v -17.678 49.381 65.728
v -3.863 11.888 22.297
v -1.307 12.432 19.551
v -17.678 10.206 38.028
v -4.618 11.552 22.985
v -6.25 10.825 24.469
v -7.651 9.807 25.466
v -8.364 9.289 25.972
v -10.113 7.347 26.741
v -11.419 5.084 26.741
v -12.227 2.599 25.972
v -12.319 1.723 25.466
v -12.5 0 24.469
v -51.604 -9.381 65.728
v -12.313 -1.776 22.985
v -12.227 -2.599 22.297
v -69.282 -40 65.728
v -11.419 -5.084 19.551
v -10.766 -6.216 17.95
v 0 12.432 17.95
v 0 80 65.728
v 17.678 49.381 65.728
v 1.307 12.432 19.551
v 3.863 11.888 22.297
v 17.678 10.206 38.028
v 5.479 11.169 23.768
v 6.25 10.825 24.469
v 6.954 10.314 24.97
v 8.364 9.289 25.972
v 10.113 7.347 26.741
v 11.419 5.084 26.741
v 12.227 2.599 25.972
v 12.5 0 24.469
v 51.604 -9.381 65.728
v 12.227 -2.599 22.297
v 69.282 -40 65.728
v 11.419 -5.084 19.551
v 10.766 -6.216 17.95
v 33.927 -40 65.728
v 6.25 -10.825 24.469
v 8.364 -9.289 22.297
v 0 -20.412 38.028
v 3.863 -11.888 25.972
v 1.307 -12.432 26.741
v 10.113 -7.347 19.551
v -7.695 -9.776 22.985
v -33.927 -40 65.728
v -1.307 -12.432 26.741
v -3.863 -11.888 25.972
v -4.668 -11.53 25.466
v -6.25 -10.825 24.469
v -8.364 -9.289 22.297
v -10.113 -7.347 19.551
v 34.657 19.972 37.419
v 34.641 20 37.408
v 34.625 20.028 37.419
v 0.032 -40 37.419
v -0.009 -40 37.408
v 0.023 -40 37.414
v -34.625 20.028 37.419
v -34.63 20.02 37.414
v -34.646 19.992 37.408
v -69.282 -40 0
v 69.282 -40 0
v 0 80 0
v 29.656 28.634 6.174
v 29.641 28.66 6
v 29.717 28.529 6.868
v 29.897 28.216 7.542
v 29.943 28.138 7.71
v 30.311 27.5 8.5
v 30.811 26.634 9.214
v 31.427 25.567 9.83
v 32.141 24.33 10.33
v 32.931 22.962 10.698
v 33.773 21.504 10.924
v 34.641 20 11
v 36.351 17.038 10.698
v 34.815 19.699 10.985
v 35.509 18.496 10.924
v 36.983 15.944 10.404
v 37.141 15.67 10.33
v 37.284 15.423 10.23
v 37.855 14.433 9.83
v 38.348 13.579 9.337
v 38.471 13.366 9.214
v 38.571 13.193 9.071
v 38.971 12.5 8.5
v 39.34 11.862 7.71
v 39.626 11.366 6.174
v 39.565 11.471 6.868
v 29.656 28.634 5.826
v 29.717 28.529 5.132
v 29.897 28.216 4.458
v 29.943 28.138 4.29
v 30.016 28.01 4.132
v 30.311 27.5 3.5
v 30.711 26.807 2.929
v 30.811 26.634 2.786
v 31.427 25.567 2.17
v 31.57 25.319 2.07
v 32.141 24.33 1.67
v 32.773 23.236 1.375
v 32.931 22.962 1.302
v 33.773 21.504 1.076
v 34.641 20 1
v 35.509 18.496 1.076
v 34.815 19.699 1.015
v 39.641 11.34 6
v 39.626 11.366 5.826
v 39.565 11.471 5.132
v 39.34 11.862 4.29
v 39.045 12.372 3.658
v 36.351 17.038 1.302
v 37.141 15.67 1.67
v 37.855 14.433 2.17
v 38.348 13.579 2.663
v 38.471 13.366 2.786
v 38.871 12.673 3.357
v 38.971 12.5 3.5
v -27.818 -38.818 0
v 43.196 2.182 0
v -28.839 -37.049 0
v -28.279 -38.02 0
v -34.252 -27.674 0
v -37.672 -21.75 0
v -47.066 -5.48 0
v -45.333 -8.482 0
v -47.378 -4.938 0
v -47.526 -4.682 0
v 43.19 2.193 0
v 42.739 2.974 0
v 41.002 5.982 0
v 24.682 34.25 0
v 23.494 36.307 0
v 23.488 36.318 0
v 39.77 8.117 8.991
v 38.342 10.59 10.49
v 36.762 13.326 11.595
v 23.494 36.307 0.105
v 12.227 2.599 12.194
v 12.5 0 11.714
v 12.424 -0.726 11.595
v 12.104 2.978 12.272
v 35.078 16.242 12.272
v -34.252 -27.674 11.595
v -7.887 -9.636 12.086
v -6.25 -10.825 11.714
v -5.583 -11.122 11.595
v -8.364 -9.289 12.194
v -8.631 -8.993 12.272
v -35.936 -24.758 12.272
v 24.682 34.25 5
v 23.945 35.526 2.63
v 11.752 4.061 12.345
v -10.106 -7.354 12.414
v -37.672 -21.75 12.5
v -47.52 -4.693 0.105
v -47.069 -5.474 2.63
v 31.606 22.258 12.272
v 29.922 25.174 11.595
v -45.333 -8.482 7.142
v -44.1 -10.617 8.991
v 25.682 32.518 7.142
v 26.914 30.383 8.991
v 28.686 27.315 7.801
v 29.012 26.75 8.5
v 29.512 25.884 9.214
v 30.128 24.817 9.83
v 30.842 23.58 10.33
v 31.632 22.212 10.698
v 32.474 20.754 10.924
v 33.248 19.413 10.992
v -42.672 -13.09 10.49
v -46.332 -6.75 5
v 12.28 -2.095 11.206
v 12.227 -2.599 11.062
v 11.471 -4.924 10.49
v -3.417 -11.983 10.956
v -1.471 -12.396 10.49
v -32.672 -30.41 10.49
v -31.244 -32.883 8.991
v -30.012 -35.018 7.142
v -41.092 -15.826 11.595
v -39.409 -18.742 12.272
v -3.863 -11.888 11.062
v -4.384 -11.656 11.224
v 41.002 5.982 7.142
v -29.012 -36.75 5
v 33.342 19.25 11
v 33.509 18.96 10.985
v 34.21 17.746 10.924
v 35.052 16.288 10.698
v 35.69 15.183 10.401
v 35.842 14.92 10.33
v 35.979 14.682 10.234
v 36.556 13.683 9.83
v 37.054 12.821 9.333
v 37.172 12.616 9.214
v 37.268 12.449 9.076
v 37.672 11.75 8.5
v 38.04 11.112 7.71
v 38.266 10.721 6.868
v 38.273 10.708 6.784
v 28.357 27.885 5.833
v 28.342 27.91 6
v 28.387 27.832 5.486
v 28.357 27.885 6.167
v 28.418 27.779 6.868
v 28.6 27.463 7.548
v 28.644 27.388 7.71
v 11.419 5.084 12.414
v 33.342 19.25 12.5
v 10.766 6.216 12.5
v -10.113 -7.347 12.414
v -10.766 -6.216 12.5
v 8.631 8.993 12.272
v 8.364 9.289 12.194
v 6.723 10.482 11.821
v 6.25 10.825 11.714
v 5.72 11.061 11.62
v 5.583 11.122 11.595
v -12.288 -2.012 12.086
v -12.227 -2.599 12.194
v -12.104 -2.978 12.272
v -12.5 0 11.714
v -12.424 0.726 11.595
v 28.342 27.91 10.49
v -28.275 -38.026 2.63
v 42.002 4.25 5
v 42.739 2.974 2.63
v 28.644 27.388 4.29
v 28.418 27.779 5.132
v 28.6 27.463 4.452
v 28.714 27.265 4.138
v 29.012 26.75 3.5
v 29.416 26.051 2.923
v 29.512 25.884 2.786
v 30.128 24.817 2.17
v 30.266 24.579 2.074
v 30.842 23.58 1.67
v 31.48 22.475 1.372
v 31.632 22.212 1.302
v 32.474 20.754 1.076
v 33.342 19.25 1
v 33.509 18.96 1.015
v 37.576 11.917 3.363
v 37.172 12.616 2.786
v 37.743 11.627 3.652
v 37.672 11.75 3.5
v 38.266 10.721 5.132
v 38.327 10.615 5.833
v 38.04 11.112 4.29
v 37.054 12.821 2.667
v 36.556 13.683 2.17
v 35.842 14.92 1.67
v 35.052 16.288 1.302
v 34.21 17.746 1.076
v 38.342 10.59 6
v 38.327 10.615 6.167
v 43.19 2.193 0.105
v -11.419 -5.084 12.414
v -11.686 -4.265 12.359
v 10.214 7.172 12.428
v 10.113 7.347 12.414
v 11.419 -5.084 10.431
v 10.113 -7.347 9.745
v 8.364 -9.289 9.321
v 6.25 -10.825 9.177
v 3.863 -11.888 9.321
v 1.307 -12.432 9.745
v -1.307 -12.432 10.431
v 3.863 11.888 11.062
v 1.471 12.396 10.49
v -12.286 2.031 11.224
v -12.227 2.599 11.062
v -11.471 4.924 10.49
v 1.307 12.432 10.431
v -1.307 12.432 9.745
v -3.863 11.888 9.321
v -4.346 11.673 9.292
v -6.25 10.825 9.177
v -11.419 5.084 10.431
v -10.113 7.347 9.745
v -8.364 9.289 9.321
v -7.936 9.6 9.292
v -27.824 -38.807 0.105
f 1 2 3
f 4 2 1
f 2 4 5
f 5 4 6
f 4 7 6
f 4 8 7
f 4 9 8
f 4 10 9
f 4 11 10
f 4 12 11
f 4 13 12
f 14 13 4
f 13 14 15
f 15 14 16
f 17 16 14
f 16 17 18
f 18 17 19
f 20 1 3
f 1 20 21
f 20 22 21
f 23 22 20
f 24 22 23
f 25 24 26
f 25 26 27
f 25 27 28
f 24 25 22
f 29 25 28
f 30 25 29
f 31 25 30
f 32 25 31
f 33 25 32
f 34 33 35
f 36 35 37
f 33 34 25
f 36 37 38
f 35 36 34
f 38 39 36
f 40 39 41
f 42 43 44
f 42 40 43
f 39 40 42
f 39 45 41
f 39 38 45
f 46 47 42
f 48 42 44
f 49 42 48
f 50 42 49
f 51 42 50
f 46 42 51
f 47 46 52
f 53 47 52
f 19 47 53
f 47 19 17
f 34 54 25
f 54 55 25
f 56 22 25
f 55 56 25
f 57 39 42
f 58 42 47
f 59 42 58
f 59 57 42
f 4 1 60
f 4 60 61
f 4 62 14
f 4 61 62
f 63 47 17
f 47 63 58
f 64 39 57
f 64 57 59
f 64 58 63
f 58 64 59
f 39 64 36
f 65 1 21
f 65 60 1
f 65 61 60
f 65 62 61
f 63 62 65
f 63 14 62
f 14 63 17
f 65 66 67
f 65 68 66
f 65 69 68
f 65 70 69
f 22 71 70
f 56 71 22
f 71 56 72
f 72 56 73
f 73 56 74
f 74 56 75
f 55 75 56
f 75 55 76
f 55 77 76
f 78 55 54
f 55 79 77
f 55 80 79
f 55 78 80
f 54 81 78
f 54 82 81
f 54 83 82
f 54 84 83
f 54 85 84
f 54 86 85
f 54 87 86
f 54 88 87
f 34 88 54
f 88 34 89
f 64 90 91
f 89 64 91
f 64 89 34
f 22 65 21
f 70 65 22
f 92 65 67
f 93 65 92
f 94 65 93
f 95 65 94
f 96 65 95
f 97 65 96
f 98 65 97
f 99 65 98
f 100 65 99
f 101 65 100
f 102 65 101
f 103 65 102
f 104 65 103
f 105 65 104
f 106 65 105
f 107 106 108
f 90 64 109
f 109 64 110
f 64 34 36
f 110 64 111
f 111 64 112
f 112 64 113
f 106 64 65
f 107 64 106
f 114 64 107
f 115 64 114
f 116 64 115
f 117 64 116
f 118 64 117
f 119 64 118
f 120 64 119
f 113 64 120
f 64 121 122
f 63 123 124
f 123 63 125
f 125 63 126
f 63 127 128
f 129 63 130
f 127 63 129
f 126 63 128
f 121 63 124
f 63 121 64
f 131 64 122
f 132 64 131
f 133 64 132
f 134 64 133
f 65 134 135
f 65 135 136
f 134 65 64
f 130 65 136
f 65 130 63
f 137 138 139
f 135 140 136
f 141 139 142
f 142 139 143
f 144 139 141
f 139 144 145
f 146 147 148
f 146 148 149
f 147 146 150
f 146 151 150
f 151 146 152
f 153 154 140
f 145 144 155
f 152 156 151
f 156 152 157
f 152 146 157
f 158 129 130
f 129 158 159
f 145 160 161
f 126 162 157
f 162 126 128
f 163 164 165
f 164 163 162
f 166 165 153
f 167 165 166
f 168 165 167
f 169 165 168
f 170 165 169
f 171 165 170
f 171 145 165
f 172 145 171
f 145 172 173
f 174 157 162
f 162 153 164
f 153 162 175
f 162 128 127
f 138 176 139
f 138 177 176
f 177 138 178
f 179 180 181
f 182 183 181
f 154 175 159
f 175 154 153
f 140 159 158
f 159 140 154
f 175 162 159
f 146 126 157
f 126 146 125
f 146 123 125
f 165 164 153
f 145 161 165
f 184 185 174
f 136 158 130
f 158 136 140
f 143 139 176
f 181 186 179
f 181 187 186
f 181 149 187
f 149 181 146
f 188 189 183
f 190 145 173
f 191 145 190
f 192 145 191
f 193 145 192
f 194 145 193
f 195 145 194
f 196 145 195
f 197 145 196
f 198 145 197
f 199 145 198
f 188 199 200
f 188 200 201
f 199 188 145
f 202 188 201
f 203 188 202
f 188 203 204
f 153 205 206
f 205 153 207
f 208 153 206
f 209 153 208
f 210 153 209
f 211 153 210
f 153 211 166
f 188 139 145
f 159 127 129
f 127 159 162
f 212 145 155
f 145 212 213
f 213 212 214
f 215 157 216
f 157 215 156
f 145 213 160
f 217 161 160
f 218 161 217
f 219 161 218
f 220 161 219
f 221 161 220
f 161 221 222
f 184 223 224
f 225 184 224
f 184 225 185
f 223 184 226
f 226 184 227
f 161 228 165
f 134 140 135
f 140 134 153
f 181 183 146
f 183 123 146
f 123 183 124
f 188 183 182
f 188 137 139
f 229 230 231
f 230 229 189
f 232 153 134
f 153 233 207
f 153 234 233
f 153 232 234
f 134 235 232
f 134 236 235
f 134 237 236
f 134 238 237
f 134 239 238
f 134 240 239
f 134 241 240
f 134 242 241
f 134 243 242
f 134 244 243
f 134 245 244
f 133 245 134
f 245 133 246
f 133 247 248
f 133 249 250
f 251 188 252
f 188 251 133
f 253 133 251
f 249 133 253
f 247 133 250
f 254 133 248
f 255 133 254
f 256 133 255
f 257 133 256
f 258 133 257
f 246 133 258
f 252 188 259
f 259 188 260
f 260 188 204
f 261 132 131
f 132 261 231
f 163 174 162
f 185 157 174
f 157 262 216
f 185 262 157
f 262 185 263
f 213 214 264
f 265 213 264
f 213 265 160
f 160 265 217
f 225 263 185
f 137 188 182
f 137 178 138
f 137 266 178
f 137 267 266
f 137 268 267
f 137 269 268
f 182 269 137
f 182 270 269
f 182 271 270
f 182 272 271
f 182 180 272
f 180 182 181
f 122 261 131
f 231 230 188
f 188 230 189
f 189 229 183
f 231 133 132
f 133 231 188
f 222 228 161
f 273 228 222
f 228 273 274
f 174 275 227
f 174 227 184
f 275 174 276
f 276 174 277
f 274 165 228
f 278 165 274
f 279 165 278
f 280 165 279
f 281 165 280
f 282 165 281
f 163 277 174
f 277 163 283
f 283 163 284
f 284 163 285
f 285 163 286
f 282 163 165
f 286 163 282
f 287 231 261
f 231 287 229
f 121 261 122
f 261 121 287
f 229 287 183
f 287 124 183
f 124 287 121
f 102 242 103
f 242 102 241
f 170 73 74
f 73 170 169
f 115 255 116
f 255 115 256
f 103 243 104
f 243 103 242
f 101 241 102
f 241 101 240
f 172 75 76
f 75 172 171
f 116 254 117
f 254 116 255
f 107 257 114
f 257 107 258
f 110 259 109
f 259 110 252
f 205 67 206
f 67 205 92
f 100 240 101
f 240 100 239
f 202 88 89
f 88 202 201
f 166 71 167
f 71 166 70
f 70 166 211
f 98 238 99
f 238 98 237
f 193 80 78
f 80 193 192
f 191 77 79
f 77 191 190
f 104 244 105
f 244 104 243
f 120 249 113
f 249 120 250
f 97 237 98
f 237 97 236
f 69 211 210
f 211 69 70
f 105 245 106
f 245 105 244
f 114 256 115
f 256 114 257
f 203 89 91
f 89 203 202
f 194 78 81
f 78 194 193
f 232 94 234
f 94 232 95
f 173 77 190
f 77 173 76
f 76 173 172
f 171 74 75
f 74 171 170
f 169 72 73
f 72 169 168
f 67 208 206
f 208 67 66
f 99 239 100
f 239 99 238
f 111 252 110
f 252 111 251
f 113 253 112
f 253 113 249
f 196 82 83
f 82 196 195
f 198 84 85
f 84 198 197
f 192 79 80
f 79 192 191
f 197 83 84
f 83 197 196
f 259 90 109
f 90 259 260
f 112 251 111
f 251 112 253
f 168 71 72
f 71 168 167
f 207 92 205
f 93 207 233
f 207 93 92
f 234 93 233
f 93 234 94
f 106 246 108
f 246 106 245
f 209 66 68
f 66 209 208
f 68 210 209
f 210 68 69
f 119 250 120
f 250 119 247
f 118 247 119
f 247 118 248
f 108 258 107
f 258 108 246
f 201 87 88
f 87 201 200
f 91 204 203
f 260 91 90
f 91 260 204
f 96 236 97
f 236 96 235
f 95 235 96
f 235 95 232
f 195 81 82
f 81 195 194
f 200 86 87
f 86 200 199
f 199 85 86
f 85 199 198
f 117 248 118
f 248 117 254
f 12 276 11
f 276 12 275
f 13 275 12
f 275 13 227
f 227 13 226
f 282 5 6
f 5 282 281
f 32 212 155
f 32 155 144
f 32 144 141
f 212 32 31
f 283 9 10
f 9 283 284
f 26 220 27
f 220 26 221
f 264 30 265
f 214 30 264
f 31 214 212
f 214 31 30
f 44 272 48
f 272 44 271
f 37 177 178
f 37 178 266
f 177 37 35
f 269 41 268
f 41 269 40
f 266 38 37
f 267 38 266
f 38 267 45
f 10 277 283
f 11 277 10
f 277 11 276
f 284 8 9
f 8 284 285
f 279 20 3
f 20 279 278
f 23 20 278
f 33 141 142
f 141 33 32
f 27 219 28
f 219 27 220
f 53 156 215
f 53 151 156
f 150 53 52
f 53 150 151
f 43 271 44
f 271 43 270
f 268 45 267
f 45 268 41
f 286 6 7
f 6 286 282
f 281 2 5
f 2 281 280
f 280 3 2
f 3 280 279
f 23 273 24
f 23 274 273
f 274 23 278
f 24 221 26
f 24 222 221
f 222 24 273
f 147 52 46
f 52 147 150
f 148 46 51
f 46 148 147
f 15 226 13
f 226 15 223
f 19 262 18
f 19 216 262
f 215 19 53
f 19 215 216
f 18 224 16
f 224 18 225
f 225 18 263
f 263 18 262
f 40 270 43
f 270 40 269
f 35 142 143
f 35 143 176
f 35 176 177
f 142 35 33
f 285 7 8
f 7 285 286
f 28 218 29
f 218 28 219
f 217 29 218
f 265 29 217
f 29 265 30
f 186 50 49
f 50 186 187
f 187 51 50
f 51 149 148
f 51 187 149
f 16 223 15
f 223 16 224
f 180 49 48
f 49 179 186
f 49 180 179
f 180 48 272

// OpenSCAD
cubeHeigth = 20;
socketRadius=55;

socketCube();
//translate([0,-40,0]) cube([125,125,1]);

module socketCube() { 
    difference() {
        
        union() {
            rotate([0,0,90]) cylinder(d=160,h=90,$fn=3);
            //rotate([0,0,-30]) cubeCorner();
//            hull() {
//                for (i=[0:6]) {
//                    rotate([0,0,i*60+30]) translate([0,socketRadius,0]) sphere(d=5,$fn=15);
//                    rotate([0,0,i*60+30]) translate([0,socketRadius,12]) sphere(d=5,$fn=15);
//                    rotate([0,0,i*60+30]) translate([0,12,2.5*12]) sphere(d=5,$fn=15);
//                }
//            }   
        }
        translate([0,0,-2.5]) rotate([0,90,30]) translate([0,0,-2.5])  resize([30,40,82]) cylinder(d=40, h=120, center=true, $fn=36);
        rotate([0,90,30]) translate([-6,0,100]) resize([10,20,200]) cylinder(d=10,h=200,$fn=36,center=true);
        translate([0,0,9*12-3]) rotate([0,180,0]) cylinder(d=25,h=10*12);
        translate([0,0,1*12-2.84]) rotate([45,-atan(sqrt(0.5)),-30]) 
        union() {
    cube([socketRadius*15,socketRadius*15,socketRadius*15]);
    hull() {
        translate([25,25,0]) cube([socketRadius*15-50,socketRadius*15-50,socketRadius*15]);
        translate([socketRadius*15/2,socketRadius*15/2,socketRadius*30]) sphere(d=5);
        translate([socketRadius*15/2,socketRadius*15/2,-socketRadius*15]) sphere(d=5);
    }
    hull() {
        translate([25,0,25]) cube([socketRadius*15-50,socketRadius*15,socketRadius*15-50]);
        translate([socketRadius*15/2,socketRadius*30,socketRadius*15/2]) sphere(d=5);
        translate([socketRadius*15/2,-socketRadius*15,socketRadius*15/2]) sphere(d=5);
    }
    hull() {
        translate([0,25,25]) cube([socketRadius*15,socketRadius*15-50,socketRadius*15-50]);
        translate([socketRadius*30,socketRadius*15/2,socketRadius*15/2]) sphere(d=5);
        translate([-socketRadius*15,socketRadius*15/2,socketRadius*15/2]) sphere(d=5);
    }
}
//cube([socketRadius*15,socketRadius*15,socketRadius*15]);
    }
}
